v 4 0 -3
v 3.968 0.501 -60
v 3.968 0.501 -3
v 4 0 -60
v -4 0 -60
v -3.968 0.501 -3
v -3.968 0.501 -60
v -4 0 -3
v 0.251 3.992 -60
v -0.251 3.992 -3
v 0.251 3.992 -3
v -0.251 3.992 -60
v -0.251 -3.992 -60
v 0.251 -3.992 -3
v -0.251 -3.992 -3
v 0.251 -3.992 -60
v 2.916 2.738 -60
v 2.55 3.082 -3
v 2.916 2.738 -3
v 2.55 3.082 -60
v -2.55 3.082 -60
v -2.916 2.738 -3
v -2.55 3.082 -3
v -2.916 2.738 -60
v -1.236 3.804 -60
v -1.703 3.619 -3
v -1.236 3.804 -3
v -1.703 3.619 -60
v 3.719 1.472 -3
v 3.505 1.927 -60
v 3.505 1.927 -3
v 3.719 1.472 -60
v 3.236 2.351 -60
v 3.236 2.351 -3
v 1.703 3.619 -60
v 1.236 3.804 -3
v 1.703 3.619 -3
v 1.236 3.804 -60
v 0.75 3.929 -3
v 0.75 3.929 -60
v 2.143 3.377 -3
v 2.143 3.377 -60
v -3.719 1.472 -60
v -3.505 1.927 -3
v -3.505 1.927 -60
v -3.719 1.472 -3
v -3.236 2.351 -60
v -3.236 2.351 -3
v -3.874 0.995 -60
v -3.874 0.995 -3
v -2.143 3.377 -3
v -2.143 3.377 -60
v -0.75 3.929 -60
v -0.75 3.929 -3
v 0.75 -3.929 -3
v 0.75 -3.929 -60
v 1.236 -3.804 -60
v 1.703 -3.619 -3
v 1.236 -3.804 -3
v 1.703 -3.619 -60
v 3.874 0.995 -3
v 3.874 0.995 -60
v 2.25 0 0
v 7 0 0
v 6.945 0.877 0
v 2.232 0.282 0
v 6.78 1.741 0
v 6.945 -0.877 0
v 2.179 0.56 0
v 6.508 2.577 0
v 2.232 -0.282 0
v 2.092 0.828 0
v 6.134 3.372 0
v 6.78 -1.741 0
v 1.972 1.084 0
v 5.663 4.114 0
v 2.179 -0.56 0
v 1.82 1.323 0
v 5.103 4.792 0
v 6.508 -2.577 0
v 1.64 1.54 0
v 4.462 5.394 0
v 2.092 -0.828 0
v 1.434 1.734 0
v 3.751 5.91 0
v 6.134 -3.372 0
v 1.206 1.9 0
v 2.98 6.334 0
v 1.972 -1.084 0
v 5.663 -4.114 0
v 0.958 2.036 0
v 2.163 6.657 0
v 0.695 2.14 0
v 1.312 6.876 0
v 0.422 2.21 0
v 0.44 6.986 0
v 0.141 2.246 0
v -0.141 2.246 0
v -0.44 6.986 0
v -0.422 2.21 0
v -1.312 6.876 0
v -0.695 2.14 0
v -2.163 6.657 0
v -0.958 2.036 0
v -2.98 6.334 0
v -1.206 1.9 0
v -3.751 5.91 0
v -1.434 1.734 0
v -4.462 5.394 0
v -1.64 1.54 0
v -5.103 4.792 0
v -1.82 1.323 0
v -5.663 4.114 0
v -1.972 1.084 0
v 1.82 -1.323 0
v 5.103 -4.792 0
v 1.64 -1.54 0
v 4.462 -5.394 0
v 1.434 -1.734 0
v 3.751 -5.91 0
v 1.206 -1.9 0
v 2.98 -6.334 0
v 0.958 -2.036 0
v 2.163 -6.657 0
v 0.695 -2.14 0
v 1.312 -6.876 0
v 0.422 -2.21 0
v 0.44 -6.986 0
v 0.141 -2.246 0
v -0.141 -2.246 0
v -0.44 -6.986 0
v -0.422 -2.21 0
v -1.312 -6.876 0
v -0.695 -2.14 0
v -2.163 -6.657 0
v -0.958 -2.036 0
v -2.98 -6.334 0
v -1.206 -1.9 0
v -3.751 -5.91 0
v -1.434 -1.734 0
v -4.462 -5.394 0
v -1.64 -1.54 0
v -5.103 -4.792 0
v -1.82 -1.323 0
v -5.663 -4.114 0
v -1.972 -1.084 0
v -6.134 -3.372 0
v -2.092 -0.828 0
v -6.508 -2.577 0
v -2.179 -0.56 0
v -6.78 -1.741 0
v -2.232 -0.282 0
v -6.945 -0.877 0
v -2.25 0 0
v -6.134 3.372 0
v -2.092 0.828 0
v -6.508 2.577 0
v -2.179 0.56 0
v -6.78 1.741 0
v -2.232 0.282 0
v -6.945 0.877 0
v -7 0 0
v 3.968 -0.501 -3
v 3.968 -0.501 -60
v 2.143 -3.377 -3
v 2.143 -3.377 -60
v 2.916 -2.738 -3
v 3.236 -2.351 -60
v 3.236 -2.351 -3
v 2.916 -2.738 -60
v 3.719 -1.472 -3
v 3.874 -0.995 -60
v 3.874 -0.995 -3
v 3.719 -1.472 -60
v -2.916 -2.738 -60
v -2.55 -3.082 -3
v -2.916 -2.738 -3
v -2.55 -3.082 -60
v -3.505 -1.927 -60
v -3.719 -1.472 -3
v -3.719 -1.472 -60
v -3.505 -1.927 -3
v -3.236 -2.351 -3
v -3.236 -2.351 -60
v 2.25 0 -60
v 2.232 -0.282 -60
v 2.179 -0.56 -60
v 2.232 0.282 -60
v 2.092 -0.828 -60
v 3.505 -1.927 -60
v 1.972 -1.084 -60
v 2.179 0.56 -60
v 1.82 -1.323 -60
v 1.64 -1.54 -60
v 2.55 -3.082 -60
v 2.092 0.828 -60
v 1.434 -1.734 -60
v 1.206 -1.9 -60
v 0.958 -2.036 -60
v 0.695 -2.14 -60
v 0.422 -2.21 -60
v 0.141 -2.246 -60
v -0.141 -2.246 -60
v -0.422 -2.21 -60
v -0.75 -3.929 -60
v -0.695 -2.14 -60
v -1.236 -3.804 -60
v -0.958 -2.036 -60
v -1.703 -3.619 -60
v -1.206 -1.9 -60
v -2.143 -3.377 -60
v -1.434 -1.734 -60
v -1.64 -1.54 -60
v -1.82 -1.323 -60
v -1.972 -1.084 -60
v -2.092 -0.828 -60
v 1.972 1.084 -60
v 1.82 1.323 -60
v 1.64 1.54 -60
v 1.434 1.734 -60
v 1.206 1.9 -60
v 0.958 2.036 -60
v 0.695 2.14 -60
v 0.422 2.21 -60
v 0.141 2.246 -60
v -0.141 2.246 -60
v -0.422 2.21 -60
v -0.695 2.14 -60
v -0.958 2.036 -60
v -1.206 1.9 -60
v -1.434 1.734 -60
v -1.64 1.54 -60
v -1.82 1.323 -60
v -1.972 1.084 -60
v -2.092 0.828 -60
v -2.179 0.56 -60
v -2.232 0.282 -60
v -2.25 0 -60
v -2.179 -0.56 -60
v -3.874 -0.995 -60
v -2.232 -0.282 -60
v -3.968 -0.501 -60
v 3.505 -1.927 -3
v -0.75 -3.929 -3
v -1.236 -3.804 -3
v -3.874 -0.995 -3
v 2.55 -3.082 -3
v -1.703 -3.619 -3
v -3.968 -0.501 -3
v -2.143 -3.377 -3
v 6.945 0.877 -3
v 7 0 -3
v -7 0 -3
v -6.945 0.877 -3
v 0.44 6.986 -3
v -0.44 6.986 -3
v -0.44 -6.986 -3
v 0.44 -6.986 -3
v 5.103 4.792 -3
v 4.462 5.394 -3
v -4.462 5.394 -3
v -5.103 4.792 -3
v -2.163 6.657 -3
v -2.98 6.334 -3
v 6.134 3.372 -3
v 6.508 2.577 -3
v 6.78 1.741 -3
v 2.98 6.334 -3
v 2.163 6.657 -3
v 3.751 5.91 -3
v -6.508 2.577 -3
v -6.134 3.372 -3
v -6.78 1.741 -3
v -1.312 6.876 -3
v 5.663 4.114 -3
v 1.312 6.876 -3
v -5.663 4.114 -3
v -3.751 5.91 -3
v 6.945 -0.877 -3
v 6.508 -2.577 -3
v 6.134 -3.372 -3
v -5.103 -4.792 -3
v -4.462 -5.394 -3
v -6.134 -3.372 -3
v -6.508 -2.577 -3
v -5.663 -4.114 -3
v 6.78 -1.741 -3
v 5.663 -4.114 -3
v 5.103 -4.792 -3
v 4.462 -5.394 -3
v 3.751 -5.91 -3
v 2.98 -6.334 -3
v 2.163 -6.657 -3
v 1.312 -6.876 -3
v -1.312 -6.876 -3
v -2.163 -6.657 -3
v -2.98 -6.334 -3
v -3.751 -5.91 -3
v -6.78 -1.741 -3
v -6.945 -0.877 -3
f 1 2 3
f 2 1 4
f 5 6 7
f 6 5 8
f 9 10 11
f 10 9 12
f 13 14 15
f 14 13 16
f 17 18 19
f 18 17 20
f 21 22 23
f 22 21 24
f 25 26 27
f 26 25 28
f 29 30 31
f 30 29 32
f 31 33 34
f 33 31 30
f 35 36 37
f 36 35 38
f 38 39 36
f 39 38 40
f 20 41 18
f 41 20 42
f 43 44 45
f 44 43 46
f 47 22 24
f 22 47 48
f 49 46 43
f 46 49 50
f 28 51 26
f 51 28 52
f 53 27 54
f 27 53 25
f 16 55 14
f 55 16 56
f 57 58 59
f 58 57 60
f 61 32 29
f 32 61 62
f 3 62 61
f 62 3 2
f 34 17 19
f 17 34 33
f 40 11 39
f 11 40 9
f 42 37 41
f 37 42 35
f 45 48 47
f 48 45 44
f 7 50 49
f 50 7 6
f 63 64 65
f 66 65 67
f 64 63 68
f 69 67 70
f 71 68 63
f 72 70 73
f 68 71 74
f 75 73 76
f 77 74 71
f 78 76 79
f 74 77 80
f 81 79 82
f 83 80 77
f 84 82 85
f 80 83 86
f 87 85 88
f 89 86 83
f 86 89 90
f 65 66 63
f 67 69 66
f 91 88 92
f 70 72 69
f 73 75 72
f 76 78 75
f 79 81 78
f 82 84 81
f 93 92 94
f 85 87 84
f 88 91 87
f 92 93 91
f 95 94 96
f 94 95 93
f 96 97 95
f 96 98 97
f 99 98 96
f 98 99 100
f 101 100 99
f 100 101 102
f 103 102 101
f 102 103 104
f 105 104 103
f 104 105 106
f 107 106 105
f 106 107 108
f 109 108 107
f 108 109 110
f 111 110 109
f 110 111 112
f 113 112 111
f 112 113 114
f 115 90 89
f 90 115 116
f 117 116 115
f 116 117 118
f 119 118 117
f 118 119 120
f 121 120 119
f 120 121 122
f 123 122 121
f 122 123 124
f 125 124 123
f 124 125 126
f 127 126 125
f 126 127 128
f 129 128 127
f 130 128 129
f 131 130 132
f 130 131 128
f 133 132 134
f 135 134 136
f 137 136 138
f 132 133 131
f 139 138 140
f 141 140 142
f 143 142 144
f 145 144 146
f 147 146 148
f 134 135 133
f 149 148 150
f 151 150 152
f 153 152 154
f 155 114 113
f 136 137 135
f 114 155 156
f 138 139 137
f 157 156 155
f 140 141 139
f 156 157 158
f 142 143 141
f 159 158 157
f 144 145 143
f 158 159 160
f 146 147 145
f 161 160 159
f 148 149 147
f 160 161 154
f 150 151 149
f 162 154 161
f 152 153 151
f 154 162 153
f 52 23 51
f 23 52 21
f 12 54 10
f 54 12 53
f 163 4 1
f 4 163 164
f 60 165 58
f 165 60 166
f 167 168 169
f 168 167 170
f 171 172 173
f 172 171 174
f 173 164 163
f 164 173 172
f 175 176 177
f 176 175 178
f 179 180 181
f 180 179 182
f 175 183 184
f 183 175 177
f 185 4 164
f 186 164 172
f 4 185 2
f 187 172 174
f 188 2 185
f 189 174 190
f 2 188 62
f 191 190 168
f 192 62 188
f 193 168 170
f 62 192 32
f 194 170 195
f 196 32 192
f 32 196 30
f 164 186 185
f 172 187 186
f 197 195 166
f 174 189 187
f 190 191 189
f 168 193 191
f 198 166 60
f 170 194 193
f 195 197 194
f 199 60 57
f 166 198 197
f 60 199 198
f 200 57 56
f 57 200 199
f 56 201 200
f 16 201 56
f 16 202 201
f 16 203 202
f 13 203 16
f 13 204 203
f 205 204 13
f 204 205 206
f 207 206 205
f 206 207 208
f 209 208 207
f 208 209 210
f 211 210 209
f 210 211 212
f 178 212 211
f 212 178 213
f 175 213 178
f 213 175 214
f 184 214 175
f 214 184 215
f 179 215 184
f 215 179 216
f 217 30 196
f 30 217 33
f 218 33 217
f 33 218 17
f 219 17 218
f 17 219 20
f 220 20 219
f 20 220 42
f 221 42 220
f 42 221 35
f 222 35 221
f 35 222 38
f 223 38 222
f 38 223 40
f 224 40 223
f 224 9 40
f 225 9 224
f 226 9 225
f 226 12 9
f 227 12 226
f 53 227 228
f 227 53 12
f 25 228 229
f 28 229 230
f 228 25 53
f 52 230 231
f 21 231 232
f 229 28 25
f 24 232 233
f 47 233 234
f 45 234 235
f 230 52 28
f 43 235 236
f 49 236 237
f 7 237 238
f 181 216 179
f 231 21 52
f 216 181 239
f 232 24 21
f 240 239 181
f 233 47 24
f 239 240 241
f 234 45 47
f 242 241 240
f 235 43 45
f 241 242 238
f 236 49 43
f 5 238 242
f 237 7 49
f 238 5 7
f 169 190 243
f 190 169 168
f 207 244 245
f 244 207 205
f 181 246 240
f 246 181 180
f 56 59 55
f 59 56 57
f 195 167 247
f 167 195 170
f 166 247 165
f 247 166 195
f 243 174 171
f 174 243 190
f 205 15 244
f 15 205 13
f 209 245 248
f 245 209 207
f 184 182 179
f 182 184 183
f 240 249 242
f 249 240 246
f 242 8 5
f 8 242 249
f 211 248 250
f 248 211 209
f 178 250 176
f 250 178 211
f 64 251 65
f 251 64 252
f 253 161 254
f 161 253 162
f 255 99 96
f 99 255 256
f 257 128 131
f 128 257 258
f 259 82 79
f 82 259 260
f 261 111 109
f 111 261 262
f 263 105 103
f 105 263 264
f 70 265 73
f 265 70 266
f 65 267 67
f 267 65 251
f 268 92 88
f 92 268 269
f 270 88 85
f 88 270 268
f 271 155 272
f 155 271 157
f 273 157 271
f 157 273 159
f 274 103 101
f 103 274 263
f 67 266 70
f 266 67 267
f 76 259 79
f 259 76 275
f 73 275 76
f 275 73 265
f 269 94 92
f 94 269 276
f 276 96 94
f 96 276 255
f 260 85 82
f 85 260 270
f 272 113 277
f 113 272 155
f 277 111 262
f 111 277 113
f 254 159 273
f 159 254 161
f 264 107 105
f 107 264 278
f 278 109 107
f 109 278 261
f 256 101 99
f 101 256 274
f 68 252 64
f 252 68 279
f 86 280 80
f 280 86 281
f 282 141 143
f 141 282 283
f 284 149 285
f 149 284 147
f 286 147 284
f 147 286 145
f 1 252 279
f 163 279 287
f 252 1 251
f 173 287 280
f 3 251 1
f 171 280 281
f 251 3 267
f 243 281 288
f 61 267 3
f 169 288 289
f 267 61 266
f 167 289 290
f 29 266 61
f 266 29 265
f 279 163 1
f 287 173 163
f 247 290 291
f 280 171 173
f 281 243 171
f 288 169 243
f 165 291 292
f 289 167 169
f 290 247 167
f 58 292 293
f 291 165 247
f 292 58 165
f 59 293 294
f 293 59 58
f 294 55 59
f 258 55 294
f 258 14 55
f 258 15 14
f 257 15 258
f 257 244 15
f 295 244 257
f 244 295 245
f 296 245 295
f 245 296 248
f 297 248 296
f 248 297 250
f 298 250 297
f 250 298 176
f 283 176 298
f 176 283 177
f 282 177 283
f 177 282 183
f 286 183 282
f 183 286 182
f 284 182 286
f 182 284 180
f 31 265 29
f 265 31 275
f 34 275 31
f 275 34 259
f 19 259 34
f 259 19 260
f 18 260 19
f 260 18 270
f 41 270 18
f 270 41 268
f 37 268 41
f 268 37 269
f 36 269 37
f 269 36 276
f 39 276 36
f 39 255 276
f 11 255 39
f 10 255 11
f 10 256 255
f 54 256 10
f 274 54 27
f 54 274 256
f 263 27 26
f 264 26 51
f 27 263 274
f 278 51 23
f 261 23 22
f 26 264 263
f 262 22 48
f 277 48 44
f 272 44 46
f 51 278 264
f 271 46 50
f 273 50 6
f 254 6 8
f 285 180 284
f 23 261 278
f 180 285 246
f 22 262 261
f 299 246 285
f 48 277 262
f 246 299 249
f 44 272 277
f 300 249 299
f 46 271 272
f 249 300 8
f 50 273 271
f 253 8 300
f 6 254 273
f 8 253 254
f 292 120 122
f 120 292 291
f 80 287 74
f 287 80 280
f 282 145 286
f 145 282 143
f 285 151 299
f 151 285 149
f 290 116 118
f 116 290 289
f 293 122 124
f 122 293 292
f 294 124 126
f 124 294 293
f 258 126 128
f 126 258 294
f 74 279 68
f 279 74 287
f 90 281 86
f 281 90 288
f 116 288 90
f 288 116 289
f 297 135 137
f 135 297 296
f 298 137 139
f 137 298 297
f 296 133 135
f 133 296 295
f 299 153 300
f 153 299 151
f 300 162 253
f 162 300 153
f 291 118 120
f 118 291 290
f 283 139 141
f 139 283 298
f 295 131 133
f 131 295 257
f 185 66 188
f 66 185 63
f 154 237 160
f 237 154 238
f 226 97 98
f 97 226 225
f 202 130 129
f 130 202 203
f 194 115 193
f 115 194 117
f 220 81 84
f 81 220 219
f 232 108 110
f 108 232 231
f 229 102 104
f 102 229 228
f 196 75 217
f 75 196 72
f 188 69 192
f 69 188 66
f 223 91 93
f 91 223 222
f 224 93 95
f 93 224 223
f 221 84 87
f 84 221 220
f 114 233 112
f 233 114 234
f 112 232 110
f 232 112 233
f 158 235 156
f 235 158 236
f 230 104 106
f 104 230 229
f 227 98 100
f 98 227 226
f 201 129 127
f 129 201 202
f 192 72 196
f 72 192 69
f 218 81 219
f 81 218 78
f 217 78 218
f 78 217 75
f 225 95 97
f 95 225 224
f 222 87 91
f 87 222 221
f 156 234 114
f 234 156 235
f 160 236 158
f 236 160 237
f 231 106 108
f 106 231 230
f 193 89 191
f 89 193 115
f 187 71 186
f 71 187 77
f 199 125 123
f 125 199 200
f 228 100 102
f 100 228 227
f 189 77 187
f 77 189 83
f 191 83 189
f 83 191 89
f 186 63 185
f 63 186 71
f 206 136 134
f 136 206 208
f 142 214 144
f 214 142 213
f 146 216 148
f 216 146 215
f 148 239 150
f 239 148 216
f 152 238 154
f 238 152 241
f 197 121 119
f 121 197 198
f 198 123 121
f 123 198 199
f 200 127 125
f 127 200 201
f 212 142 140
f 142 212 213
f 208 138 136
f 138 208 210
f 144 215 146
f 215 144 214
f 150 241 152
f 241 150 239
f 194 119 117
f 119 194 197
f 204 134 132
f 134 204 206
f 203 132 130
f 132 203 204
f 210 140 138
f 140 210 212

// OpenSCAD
$fn = 50;


difference() {
	union() {
		translate(v = [0, 0, -60.0000000000]) {
			cylinder(h = 60, r = 4.0000000000);
		}
		translate(v = [0, 0, -3.0000000000]) {
			cylinder(h = 3, r = 7.0000000000);
		}
	}
	union() {
		#translate(v = [0, 0, -60]) {
			cylinder(h = 60, r = 2.2500000000);
		}
	}
}
